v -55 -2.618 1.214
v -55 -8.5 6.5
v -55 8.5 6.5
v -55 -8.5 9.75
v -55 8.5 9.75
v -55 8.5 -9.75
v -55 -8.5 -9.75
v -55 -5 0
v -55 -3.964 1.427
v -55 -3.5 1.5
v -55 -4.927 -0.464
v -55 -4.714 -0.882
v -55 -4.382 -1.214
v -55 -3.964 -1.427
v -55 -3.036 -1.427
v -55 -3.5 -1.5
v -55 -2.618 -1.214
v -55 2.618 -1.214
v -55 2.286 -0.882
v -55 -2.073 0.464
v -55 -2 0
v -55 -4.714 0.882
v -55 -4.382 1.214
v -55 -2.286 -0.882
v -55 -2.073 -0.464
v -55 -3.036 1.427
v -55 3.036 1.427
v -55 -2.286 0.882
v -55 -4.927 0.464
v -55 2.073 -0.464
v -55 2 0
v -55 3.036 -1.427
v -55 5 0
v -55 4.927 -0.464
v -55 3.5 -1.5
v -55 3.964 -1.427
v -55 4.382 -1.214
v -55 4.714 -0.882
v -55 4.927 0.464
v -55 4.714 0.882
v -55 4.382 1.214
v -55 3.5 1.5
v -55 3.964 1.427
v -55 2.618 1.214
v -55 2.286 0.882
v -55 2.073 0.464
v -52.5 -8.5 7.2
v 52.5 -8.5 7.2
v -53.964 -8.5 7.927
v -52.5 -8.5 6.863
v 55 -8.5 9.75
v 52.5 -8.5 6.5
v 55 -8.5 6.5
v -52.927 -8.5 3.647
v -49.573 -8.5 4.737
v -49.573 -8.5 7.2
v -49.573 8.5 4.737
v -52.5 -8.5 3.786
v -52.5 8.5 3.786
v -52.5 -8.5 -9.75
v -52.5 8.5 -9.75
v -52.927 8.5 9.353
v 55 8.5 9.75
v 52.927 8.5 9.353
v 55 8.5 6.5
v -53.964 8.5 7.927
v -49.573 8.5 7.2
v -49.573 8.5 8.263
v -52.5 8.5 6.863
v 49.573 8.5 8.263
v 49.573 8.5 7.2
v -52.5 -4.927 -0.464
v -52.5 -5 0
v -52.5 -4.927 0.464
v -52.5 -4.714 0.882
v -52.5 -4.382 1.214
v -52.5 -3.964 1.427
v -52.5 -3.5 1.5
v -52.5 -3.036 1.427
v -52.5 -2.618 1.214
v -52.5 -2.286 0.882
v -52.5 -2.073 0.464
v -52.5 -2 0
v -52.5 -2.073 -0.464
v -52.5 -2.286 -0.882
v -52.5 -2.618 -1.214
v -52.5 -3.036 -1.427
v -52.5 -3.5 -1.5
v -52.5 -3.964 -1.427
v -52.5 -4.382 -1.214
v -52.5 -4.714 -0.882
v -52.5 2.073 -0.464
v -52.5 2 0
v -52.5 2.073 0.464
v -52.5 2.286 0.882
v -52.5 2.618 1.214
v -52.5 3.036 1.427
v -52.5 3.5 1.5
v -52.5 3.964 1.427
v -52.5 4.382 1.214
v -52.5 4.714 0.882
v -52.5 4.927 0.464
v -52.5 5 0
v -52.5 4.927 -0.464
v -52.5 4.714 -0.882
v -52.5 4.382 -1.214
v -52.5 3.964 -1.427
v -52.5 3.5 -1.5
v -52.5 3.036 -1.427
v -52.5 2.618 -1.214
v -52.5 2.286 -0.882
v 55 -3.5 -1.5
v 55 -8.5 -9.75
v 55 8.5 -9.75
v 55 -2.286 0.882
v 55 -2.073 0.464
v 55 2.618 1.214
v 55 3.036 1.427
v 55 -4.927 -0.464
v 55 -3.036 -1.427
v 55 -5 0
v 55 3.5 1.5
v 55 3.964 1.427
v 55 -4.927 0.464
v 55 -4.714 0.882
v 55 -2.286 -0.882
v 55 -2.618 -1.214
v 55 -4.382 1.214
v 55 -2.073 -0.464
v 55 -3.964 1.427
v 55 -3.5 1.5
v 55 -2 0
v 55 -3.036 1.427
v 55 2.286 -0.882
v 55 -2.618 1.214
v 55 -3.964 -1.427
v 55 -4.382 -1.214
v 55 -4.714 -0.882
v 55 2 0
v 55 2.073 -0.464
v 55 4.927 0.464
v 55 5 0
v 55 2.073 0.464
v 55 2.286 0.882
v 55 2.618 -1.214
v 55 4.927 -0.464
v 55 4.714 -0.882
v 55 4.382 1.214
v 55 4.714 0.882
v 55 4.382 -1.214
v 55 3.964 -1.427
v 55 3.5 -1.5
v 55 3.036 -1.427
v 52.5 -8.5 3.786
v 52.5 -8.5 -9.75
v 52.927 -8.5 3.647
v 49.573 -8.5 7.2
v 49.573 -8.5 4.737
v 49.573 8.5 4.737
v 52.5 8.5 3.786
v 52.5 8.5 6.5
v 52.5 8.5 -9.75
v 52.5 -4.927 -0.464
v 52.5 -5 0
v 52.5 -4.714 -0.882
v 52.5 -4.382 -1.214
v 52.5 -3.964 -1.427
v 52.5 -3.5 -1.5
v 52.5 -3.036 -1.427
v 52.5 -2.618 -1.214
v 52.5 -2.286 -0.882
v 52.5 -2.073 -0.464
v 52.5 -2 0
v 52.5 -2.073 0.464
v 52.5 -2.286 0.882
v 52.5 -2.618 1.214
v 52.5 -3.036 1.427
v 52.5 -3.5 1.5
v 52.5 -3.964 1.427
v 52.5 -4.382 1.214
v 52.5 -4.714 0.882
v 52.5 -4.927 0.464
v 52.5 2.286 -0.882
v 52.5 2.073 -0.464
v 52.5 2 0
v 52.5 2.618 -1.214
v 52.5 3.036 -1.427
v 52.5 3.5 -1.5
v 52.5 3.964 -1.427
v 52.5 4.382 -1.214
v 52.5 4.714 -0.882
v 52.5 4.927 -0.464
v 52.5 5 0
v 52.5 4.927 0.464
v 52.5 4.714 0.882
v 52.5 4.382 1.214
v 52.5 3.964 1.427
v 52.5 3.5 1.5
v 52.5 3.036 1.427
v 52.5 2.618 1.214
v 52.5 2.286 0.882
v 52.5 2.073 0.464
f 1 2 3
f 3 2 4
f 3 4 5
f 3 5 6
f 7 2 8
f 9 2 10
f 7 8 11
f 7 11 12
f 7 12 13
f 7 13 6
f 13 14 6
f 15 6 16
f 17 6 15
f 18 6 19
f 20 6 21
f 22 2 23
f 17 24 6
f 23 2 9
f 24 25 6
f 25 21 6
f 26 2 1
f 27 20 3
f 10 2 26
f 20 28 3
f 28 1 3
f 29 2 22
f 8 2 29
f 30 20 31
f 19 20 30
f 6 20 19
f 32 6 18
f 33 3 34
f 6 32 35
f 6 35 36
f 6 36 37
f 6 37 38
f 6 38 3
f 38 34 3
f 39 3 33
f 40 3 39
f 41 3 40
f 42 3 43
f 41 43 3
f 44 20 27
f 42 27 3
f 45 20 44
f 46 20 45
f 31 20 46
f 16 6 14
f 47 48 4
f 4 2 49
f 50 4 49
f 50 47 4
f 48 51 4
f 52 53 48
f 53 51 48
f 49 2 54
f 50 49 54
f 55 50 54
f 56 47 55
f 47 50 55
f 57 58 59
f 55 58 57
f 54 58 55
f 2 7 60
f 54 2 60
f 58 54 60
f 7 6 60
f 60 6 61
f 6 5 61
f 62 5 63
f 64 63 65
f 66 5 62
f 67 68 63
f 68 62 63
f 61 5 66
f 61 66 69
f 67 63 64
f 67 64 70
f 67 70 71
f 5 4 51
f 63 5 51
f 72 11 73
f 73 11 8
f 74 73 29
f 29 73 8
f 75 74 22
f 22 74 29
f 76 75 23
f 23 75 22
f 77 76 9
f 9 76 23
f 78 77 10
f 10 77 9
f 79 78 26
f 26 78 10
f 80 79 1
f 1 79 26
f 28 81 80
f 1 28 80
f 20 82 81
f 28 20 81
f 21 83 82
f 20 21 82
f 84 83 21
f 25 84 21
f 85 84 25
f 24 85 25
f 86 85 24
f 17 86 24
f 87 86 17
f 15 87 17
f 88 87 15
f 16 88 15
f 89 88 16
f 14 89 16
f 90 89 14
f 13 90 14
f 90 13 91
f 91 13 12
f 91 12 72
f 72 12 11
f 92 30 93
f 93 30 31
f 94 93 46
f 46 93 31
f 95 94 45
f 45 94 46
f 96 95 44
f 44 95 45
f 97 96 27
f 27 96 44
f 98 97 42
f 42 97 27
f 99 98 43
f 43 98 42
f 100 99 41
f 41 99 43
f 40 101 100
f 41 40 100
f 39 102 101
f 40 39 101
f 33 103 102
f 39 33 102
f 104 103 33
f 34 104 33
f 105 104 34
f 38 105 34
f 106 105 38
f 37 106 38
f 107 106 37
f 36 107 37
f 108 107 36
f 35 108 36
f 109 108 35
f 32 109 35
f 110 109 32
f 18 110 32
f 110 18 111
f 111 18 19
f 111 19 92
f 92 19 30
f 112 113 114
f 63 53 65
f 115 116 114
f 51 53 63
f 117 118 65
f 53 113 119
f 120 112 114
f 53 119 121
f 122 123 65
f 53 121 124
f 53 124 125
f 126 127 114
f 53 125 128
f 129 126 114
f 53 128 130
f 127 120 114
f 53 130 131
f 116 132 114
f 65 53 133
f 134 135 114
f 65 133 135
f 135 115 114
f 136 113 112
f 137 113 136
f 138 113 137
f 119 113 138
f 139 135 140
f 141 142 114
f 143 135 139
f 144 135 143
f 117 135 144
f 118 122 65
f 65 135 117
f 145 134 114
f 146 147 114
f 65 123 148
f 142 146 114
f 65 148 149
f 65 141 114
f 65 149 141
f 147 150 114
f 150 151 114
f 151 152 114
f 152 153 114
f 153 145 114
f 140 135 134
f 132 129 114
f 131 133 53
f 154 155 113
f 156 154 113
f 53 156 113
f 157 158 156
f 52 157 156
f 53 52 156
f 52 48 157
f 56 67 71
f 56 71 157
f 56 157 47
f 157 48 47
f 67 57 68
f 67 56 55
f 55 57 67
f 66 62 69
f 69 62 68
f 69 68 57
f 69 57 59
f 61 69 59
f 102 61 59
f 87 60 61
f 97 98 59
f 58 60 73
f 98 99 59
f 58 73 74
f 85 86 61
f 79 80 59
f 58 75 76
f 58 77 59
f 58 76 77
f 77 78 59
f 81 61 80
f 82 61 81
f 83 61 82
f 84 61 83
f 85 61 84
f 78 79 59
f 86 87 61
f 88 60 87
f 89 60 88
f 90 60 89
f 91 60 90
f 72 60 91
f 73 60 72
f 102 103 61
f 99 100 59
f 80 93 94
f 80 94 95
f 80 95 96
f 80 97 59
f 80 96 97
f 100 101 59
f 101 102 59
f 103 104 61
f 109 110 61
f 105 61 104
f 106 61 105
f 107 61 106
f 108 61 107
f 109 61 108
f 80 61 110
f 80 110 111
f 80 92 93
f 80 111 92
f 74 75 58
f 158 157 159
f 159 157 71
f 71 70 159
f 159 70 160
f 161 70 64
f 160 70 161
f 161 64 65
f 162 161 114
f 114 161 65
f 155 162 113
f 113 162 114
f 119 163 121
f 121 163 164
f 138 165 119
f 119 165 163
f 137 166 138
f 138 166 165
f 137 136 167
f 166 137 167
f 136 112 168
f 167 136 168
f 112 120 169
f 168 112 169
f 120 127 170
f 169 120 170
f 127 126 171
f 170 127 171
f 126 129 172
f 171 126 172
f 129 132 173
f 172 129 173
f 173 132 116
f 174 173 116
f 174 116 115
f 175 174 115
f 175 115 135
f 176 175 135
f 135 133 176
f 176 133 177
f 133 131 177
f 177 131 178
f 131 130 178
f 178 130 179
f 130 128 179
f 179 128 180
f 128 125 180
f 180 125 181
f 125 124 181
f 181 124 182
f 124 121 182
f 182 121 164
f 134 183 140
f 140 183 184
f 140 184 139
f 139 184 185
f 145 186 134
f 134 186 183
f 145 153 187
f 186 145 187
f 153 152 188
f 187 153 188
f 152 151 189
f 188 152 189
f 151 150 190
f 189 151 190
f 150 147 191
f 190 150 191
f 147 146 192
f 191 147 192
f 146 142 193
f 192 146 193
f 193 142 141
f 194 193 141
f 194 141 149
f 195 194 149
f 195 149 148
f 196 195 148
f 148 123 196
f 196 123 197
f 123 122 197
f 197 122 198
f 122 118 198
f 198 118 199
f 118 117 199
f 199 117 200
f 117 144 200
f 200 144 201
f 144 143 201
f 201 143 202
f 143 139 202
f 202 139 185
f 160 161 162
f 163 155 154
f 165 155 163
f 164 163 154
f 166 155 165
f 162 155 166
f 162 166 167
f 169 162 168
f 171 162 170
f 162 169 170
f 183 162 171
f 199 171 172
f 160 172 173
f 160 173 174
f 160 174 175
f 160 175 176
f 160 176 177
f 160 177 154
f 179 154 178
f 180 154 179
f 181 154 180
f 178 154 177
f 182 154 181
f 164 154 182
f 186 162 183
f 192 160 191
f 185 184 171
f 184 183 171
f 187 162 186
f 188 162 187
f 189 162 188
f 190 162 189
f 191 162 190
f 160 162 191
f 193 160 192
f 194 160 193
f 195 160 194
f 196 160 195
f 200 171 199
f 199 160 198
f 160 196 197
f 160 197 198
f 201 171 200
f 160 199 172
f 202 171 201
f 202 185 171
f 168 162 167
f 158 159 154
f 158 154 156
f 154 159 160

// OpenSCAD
union(){
difference(){
cube([106+2*2,17,18+1.5],center=true);
translate([0,0,-1.8])cube([105,18,18],center=true);
translate([0,-3.5,0])rotate([0,90,0])cylinder(r=1.5,h=300,center=true,$fn=20);
translate([0,3.5,0])rotate([0,90,0])cylinder(r=1.5,h=300,center=true,$fn=20);
}
translate([52,0,6.5])rotate([90,0,0])cylinder(r=3,h=17, center=true,$fn=5);
translate([-52,0,6.5])rotate([90,36,0])cylinder(r=3,h=17, center=true,$fn=5);
}
